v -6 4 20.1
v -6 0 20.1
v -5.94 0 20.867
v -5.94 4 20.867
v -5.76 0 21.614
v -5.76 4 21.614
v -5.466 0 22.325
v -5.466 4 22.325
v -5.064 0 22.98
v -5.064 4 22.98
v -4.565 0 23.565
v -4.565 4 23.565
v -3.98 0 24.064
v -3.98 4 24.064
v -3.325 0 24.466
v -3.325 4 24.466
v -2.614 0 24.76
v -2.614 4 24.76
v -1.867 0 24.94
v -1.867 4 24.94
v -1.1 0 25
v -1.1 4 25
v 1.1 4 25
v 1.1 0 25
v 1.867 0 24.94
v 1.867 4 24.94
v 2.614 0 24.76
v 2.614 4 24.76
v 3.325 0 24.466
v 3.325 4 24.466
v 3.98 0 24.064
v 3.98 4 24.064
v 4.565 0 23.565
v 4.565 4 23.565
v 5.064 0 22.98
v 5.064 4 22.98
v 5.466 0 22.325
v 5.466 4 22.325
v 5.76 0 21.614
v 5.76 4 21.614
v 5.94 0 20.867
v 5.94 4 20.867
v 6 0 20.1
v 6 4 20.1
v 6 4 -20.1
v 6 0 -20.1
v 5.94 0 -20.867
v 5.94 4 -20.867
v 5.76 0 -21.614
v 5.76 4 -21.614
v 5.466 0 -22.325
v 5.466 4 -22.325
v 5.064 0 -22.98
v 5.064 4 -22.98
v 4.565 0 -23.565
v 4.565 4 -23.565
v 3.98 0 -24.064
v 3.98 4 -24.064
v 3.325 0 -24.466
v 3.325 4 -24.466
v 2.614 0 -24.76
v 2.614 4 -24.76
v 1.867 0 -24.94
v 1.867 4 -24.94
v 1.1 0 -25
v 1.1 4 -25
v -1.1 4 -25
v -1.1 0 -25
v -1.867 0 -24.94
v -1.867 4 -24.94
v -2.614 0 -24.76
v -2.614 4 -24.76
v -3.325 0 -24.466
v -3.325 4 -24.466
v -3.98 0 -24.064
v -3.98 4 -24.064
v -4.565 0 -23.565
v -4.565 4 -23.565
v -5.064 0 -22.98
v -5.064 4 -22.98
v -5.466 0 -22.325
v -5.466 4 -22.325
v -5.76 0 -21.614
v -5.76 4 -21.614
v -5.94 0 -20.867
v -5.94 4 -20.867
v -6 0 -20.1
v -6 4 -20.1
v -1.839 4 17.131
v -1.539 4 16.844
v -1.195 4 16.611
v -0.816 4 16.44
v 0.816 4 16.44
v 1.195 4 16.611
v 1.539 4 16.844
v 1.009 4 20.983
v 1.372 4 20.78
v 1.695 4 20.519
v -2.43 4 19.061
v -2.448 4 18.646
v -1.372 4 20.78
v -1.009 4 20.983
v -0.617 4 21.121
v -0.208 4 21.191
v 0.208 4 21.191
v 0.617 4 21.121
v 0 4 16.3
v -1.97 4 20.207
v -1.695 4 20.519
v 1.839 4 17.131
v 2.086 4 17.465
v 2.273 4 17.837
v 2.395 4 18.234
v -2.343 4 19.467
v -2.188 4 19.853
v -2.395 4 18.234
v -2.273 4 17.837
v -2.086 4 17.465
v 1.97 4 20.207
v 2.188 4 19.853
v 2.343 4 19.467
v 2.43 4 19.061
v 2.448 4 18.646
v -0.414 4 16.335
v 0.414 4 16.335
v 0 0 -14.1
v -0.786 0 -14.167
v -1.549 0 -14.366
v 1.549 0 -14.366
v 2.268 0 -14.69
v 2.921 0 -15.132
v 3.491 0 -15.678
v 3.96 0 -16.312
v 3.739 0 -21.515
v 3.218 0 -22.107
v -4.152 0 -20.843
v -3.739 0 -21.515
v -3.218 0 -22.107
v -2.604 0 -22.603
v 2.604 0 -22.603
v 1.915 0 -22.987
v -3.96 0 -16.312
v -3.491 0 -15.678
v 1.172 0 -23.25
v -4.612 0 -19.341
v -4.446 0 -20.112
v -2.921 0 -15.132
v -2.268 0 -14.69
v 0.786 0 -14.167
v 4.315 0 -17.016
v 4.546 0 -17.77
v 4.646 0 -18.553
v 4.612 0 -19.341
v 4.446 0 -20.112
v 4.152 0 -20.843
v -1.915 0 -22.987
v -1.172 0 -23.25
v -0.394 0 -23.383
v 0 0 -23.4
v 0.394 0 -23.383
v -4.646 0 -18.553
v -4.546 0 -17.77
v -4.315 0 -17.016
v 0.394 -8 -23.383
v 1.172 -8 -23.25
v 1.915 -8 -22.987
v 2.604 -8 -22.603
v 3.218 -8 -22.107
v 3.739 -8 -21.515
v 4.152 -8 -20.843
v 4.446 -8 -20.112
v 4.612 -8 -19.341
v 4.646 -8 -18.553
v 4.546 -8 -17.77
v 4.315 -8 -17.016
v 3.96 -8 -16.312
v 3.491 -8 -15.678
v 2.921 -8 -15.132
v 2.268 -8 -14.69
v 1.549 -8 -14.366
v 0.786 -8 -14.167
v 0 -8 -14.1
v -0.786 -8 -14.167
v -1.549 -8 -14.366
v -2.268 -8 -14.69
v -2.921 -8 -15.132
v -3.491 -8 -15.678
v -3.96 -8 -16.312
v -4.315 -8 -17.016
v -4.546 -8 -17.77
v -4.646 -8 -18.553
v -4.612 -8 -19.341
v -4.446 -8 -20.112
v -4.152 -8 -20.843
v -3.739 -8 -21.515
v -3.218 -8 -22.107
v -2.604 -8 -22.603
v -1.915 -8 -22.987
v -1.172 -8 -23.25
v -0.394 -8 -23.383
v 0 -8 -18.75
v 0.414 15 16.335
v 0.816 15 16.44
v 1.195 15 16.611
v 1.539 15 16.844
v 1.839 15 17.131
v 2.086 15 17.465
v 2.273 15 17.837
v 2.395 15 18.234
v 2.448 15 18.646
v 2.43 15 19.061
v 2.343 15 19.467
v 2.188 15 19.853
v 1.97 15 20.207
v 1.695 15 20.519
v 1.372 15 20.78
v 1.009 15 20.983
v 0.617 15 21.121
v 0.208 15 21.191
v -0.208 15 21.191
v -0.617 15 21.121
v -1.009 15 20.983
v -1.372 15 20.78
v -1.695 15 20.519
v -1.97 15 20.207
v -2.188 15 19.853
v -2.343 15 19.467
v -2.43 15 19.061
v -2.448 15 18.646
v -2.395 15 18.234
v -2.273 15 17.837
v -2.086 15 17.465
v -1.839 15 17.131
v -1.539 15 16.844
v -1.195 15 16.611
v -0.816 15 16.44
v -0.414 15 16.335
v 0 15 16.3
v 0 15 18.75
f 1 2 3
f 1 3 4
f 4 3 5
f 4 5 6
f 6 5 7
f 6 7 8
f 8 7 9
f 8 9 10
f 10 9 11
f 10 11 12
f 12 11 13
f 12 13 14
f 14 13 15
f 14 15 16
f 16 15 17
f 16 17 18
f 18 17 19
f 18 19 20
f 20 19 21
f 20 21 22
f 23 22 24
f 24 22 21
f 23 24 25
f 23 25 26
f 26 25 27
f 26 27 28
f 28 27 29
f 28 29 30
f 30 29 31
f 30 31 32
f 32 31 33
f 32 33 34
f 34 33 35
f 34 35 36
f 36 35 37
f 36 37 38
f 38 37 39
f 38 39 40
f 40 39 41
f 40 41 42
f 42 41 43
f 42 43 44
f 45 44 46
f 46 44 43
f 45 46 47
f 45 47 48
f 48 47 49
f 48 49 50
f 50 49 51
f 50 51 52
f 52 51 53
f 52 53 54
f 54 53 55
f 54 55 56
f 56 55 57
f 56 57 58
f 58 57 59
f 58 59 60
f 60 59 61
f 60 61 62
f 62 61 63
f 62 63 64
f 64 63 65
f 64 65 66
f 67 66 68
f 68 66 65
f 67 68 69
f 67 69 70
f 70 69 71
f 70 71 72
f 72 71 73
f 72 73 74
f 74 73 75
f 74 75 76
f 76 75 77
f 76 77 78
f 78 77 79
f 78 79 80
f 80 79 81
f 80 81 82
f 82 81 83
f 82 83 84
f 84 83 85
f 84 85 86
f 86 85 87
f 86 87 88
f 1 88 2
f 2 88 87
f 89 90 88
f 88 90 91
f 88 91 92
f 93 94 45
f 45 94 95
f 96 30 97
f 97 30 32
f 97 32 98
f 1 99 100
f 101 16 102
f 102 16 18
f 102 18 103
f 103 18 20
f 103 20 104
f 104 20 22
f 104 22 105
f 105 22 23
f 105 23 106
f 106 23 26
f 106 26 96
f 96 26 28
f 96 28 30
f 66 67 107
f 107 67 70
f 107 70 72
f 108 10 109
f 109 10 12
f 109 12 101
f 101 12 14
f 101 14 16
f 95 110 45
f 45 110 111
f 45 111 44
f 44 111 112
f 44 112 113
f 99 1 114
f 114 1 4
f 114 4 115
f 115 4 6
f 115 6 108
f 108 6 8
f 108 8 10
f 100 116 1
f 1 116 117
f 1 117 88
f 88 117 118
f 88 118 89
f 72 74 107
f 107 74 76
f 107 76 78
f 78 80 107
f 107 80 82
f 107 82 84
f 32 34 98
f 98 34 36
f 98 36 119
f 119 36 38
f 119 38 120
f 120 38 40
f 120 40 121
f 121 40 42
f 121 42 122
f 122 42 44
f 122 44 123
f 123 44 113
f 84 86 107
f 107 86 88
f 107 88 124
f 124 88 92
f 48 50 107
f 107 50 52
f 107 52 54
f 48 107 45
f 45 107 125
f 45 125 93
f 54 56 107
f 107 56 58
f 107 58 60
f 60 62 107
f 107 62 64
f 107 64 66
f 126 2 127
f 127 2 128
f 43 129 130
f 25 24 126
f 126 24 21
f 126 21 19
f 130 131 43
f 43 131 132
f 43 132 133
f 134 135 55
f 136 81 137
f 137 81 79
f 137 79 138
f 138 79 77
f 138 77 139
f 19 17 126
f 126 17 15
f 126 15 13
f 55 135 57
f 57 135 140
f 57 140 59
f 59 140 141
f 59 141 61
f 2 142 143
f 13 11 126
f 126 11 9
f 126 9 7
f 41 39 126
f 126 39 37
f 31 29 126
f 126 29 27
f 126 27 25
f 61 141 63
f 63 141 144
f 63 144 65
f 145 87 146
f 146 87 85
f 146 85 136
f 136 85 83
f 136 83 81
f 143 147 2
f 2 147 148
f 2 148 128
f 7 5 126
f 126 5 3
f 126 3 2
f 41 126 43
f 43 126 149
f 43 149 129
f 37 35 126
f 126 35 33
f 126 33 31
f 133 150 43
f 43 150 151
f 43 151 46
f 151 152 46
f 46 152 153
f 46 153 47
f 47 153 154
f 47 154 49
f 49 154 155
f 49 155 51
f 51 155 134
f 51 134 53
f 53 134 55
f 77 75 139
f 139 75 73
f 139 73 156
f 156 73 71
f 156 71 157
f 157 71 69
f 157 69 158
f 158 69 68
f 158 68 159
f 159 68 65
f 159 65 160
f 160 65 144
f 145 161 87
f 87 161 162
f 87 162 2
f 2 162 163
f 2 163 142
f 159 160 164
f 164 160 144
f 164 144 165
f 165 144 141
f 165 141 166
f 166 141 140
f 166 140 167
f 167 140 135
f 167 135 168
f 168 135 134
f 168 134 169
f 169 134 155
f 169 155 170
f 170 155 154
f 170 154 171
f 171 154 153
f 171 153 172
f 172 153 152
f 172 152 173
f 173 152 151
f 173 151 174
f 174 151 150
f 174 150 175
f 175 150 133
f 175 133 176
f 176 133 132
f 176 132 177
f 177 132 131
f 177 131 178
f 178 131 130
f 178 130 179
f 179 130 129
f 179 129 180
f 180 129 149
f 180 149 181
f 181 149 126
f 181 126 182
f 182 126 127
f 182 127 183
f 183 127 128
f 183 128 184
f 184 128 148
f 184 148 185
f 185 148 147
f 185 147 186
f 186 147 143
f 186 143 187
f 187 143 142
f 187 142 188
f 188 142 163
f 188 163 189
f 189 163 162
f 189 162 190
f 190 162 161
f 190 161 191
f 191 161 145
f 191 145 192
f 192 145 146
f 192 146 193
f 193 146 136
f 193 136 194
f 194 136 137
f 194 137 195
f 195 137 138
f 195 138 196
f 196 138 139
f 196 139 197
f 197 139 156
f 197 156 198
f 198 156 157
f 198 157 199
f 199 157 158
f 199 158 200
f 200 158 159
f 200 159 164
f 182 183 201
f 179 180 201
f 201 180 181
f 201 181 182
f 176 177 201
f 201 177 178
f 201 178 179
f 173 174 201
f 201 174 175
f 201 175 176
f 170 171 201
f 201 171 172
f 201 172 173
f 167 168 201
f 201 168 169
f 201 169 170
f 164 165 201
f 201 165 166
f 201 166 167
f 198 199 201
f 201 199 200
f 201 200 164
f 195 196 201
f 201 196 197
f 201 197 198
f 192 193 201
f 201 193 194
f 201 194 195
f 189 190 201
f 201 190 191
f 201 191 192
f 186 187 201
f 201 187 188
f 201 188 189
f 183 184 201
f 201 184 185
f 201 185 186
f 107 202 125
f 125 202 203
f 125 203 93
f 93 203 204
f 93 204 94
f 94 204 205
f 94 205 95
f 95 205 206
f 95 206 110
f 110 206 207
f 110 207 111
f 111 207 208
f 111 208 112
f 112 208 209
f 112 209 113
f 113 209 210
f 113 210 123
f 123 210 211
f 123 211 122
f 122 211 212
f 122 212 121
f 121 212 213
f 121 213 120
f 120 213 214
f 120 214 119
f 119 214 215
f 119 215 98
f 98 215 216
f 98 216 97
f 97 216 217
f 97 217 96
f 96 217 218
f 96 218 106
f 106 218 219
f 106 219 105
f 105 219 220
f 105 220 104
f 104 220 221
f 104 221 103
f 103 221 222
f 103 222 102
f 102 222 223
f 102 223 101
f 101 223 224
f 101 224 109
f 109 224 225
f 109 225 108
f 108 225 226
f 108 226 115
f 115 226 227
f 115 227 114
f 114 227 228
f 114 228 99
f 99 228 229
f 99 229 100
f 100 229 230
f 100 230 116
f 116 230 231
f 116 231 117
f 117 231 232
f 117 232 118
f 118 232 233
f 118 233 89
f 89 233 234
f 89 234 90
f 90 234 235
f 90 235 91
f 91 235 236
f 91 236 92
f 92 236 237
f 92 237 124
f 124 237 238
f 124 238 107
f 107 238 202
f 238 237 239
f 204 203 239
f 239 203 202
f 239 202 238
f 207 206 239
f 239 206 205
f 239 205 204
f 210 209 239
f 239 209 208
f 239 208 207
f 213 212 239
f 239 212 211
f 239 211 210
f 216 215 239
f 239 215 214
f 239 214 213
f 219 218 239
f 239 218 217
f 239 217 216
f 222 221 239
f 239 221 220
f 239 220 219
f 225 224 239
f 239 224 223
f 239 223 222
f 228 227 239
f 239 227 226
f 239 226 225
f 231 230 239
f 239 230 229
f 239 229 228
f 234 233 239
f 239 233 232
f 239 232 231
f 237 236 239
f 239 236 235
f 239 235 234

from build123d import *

# Parameters (mm, degrees)
BOSS_EXTRUDE1_DEPTH = 4
SKETCH2_3_R         = 4.65
BOSS_EXTRUDE2_DEPTH = 8
SKETCH2_4_R         = 2.45
BOSS_EXTRUDE3_DEPTH = 15


with BuildPart() as part:
    # Sketch2 → Boss-Extrude1 (new body)
    with BuildSketch(Plane(origin=(0, 0, 0), x_dir=(1, 0, 0), z_dir=(0, 1, 0))):
        with BuildLine():
            Line((-1.1, -25), (1.1, -25))
            ThreePointArc((1.1, -25), (4.564823228, -23.564823228), (6, -20.1))
            Line((6, -20.1), (6, 20.1))
            ThreePointArc((6, 20.1), (4.564823228, 23.564823228), (1.1, 25))
            Line((1.1, 25), (-1.1, 25))
            ThreePointArc((-1.1, 25), (-4.564823228, 23.564823228), (-6, 20.1))
            Line((-6, 20.1), (-6, -20.1))
            ThreePointArc((-6, -20.1), (-4.564823228, -23.564823228), (-1.1, -25))
        make_face()
    extrude(amount=BOSS_EXTRUDE1_DEPTH)

    # Sketch2<3> → Boss-Extrude2 (add)
    with BuildSketch(Plane(origin=(0, 0, 0), x_dir=(1, 0, 0), z_dir=(0, 1, 0))):
        with Locations((0, 18.75)):
            Circle(SKETCH2_3_R)
    extrude(amount=-BOSS_EXTRUDE2_DEPTH)

    # Sketch2<4> → Boss-Extrude3 (add)
    with BuildSketch(Plane(origin=(0, 0, 0), x_dir=(1, 0, 0), z_dir=(0, 1, 0))):
        with Locations((0, -18.75)):
            Circle(SKETCH2_4_R)
    extrude(amount=BOSS_EXTRUDE3_DEPTH)


solid = part.part
